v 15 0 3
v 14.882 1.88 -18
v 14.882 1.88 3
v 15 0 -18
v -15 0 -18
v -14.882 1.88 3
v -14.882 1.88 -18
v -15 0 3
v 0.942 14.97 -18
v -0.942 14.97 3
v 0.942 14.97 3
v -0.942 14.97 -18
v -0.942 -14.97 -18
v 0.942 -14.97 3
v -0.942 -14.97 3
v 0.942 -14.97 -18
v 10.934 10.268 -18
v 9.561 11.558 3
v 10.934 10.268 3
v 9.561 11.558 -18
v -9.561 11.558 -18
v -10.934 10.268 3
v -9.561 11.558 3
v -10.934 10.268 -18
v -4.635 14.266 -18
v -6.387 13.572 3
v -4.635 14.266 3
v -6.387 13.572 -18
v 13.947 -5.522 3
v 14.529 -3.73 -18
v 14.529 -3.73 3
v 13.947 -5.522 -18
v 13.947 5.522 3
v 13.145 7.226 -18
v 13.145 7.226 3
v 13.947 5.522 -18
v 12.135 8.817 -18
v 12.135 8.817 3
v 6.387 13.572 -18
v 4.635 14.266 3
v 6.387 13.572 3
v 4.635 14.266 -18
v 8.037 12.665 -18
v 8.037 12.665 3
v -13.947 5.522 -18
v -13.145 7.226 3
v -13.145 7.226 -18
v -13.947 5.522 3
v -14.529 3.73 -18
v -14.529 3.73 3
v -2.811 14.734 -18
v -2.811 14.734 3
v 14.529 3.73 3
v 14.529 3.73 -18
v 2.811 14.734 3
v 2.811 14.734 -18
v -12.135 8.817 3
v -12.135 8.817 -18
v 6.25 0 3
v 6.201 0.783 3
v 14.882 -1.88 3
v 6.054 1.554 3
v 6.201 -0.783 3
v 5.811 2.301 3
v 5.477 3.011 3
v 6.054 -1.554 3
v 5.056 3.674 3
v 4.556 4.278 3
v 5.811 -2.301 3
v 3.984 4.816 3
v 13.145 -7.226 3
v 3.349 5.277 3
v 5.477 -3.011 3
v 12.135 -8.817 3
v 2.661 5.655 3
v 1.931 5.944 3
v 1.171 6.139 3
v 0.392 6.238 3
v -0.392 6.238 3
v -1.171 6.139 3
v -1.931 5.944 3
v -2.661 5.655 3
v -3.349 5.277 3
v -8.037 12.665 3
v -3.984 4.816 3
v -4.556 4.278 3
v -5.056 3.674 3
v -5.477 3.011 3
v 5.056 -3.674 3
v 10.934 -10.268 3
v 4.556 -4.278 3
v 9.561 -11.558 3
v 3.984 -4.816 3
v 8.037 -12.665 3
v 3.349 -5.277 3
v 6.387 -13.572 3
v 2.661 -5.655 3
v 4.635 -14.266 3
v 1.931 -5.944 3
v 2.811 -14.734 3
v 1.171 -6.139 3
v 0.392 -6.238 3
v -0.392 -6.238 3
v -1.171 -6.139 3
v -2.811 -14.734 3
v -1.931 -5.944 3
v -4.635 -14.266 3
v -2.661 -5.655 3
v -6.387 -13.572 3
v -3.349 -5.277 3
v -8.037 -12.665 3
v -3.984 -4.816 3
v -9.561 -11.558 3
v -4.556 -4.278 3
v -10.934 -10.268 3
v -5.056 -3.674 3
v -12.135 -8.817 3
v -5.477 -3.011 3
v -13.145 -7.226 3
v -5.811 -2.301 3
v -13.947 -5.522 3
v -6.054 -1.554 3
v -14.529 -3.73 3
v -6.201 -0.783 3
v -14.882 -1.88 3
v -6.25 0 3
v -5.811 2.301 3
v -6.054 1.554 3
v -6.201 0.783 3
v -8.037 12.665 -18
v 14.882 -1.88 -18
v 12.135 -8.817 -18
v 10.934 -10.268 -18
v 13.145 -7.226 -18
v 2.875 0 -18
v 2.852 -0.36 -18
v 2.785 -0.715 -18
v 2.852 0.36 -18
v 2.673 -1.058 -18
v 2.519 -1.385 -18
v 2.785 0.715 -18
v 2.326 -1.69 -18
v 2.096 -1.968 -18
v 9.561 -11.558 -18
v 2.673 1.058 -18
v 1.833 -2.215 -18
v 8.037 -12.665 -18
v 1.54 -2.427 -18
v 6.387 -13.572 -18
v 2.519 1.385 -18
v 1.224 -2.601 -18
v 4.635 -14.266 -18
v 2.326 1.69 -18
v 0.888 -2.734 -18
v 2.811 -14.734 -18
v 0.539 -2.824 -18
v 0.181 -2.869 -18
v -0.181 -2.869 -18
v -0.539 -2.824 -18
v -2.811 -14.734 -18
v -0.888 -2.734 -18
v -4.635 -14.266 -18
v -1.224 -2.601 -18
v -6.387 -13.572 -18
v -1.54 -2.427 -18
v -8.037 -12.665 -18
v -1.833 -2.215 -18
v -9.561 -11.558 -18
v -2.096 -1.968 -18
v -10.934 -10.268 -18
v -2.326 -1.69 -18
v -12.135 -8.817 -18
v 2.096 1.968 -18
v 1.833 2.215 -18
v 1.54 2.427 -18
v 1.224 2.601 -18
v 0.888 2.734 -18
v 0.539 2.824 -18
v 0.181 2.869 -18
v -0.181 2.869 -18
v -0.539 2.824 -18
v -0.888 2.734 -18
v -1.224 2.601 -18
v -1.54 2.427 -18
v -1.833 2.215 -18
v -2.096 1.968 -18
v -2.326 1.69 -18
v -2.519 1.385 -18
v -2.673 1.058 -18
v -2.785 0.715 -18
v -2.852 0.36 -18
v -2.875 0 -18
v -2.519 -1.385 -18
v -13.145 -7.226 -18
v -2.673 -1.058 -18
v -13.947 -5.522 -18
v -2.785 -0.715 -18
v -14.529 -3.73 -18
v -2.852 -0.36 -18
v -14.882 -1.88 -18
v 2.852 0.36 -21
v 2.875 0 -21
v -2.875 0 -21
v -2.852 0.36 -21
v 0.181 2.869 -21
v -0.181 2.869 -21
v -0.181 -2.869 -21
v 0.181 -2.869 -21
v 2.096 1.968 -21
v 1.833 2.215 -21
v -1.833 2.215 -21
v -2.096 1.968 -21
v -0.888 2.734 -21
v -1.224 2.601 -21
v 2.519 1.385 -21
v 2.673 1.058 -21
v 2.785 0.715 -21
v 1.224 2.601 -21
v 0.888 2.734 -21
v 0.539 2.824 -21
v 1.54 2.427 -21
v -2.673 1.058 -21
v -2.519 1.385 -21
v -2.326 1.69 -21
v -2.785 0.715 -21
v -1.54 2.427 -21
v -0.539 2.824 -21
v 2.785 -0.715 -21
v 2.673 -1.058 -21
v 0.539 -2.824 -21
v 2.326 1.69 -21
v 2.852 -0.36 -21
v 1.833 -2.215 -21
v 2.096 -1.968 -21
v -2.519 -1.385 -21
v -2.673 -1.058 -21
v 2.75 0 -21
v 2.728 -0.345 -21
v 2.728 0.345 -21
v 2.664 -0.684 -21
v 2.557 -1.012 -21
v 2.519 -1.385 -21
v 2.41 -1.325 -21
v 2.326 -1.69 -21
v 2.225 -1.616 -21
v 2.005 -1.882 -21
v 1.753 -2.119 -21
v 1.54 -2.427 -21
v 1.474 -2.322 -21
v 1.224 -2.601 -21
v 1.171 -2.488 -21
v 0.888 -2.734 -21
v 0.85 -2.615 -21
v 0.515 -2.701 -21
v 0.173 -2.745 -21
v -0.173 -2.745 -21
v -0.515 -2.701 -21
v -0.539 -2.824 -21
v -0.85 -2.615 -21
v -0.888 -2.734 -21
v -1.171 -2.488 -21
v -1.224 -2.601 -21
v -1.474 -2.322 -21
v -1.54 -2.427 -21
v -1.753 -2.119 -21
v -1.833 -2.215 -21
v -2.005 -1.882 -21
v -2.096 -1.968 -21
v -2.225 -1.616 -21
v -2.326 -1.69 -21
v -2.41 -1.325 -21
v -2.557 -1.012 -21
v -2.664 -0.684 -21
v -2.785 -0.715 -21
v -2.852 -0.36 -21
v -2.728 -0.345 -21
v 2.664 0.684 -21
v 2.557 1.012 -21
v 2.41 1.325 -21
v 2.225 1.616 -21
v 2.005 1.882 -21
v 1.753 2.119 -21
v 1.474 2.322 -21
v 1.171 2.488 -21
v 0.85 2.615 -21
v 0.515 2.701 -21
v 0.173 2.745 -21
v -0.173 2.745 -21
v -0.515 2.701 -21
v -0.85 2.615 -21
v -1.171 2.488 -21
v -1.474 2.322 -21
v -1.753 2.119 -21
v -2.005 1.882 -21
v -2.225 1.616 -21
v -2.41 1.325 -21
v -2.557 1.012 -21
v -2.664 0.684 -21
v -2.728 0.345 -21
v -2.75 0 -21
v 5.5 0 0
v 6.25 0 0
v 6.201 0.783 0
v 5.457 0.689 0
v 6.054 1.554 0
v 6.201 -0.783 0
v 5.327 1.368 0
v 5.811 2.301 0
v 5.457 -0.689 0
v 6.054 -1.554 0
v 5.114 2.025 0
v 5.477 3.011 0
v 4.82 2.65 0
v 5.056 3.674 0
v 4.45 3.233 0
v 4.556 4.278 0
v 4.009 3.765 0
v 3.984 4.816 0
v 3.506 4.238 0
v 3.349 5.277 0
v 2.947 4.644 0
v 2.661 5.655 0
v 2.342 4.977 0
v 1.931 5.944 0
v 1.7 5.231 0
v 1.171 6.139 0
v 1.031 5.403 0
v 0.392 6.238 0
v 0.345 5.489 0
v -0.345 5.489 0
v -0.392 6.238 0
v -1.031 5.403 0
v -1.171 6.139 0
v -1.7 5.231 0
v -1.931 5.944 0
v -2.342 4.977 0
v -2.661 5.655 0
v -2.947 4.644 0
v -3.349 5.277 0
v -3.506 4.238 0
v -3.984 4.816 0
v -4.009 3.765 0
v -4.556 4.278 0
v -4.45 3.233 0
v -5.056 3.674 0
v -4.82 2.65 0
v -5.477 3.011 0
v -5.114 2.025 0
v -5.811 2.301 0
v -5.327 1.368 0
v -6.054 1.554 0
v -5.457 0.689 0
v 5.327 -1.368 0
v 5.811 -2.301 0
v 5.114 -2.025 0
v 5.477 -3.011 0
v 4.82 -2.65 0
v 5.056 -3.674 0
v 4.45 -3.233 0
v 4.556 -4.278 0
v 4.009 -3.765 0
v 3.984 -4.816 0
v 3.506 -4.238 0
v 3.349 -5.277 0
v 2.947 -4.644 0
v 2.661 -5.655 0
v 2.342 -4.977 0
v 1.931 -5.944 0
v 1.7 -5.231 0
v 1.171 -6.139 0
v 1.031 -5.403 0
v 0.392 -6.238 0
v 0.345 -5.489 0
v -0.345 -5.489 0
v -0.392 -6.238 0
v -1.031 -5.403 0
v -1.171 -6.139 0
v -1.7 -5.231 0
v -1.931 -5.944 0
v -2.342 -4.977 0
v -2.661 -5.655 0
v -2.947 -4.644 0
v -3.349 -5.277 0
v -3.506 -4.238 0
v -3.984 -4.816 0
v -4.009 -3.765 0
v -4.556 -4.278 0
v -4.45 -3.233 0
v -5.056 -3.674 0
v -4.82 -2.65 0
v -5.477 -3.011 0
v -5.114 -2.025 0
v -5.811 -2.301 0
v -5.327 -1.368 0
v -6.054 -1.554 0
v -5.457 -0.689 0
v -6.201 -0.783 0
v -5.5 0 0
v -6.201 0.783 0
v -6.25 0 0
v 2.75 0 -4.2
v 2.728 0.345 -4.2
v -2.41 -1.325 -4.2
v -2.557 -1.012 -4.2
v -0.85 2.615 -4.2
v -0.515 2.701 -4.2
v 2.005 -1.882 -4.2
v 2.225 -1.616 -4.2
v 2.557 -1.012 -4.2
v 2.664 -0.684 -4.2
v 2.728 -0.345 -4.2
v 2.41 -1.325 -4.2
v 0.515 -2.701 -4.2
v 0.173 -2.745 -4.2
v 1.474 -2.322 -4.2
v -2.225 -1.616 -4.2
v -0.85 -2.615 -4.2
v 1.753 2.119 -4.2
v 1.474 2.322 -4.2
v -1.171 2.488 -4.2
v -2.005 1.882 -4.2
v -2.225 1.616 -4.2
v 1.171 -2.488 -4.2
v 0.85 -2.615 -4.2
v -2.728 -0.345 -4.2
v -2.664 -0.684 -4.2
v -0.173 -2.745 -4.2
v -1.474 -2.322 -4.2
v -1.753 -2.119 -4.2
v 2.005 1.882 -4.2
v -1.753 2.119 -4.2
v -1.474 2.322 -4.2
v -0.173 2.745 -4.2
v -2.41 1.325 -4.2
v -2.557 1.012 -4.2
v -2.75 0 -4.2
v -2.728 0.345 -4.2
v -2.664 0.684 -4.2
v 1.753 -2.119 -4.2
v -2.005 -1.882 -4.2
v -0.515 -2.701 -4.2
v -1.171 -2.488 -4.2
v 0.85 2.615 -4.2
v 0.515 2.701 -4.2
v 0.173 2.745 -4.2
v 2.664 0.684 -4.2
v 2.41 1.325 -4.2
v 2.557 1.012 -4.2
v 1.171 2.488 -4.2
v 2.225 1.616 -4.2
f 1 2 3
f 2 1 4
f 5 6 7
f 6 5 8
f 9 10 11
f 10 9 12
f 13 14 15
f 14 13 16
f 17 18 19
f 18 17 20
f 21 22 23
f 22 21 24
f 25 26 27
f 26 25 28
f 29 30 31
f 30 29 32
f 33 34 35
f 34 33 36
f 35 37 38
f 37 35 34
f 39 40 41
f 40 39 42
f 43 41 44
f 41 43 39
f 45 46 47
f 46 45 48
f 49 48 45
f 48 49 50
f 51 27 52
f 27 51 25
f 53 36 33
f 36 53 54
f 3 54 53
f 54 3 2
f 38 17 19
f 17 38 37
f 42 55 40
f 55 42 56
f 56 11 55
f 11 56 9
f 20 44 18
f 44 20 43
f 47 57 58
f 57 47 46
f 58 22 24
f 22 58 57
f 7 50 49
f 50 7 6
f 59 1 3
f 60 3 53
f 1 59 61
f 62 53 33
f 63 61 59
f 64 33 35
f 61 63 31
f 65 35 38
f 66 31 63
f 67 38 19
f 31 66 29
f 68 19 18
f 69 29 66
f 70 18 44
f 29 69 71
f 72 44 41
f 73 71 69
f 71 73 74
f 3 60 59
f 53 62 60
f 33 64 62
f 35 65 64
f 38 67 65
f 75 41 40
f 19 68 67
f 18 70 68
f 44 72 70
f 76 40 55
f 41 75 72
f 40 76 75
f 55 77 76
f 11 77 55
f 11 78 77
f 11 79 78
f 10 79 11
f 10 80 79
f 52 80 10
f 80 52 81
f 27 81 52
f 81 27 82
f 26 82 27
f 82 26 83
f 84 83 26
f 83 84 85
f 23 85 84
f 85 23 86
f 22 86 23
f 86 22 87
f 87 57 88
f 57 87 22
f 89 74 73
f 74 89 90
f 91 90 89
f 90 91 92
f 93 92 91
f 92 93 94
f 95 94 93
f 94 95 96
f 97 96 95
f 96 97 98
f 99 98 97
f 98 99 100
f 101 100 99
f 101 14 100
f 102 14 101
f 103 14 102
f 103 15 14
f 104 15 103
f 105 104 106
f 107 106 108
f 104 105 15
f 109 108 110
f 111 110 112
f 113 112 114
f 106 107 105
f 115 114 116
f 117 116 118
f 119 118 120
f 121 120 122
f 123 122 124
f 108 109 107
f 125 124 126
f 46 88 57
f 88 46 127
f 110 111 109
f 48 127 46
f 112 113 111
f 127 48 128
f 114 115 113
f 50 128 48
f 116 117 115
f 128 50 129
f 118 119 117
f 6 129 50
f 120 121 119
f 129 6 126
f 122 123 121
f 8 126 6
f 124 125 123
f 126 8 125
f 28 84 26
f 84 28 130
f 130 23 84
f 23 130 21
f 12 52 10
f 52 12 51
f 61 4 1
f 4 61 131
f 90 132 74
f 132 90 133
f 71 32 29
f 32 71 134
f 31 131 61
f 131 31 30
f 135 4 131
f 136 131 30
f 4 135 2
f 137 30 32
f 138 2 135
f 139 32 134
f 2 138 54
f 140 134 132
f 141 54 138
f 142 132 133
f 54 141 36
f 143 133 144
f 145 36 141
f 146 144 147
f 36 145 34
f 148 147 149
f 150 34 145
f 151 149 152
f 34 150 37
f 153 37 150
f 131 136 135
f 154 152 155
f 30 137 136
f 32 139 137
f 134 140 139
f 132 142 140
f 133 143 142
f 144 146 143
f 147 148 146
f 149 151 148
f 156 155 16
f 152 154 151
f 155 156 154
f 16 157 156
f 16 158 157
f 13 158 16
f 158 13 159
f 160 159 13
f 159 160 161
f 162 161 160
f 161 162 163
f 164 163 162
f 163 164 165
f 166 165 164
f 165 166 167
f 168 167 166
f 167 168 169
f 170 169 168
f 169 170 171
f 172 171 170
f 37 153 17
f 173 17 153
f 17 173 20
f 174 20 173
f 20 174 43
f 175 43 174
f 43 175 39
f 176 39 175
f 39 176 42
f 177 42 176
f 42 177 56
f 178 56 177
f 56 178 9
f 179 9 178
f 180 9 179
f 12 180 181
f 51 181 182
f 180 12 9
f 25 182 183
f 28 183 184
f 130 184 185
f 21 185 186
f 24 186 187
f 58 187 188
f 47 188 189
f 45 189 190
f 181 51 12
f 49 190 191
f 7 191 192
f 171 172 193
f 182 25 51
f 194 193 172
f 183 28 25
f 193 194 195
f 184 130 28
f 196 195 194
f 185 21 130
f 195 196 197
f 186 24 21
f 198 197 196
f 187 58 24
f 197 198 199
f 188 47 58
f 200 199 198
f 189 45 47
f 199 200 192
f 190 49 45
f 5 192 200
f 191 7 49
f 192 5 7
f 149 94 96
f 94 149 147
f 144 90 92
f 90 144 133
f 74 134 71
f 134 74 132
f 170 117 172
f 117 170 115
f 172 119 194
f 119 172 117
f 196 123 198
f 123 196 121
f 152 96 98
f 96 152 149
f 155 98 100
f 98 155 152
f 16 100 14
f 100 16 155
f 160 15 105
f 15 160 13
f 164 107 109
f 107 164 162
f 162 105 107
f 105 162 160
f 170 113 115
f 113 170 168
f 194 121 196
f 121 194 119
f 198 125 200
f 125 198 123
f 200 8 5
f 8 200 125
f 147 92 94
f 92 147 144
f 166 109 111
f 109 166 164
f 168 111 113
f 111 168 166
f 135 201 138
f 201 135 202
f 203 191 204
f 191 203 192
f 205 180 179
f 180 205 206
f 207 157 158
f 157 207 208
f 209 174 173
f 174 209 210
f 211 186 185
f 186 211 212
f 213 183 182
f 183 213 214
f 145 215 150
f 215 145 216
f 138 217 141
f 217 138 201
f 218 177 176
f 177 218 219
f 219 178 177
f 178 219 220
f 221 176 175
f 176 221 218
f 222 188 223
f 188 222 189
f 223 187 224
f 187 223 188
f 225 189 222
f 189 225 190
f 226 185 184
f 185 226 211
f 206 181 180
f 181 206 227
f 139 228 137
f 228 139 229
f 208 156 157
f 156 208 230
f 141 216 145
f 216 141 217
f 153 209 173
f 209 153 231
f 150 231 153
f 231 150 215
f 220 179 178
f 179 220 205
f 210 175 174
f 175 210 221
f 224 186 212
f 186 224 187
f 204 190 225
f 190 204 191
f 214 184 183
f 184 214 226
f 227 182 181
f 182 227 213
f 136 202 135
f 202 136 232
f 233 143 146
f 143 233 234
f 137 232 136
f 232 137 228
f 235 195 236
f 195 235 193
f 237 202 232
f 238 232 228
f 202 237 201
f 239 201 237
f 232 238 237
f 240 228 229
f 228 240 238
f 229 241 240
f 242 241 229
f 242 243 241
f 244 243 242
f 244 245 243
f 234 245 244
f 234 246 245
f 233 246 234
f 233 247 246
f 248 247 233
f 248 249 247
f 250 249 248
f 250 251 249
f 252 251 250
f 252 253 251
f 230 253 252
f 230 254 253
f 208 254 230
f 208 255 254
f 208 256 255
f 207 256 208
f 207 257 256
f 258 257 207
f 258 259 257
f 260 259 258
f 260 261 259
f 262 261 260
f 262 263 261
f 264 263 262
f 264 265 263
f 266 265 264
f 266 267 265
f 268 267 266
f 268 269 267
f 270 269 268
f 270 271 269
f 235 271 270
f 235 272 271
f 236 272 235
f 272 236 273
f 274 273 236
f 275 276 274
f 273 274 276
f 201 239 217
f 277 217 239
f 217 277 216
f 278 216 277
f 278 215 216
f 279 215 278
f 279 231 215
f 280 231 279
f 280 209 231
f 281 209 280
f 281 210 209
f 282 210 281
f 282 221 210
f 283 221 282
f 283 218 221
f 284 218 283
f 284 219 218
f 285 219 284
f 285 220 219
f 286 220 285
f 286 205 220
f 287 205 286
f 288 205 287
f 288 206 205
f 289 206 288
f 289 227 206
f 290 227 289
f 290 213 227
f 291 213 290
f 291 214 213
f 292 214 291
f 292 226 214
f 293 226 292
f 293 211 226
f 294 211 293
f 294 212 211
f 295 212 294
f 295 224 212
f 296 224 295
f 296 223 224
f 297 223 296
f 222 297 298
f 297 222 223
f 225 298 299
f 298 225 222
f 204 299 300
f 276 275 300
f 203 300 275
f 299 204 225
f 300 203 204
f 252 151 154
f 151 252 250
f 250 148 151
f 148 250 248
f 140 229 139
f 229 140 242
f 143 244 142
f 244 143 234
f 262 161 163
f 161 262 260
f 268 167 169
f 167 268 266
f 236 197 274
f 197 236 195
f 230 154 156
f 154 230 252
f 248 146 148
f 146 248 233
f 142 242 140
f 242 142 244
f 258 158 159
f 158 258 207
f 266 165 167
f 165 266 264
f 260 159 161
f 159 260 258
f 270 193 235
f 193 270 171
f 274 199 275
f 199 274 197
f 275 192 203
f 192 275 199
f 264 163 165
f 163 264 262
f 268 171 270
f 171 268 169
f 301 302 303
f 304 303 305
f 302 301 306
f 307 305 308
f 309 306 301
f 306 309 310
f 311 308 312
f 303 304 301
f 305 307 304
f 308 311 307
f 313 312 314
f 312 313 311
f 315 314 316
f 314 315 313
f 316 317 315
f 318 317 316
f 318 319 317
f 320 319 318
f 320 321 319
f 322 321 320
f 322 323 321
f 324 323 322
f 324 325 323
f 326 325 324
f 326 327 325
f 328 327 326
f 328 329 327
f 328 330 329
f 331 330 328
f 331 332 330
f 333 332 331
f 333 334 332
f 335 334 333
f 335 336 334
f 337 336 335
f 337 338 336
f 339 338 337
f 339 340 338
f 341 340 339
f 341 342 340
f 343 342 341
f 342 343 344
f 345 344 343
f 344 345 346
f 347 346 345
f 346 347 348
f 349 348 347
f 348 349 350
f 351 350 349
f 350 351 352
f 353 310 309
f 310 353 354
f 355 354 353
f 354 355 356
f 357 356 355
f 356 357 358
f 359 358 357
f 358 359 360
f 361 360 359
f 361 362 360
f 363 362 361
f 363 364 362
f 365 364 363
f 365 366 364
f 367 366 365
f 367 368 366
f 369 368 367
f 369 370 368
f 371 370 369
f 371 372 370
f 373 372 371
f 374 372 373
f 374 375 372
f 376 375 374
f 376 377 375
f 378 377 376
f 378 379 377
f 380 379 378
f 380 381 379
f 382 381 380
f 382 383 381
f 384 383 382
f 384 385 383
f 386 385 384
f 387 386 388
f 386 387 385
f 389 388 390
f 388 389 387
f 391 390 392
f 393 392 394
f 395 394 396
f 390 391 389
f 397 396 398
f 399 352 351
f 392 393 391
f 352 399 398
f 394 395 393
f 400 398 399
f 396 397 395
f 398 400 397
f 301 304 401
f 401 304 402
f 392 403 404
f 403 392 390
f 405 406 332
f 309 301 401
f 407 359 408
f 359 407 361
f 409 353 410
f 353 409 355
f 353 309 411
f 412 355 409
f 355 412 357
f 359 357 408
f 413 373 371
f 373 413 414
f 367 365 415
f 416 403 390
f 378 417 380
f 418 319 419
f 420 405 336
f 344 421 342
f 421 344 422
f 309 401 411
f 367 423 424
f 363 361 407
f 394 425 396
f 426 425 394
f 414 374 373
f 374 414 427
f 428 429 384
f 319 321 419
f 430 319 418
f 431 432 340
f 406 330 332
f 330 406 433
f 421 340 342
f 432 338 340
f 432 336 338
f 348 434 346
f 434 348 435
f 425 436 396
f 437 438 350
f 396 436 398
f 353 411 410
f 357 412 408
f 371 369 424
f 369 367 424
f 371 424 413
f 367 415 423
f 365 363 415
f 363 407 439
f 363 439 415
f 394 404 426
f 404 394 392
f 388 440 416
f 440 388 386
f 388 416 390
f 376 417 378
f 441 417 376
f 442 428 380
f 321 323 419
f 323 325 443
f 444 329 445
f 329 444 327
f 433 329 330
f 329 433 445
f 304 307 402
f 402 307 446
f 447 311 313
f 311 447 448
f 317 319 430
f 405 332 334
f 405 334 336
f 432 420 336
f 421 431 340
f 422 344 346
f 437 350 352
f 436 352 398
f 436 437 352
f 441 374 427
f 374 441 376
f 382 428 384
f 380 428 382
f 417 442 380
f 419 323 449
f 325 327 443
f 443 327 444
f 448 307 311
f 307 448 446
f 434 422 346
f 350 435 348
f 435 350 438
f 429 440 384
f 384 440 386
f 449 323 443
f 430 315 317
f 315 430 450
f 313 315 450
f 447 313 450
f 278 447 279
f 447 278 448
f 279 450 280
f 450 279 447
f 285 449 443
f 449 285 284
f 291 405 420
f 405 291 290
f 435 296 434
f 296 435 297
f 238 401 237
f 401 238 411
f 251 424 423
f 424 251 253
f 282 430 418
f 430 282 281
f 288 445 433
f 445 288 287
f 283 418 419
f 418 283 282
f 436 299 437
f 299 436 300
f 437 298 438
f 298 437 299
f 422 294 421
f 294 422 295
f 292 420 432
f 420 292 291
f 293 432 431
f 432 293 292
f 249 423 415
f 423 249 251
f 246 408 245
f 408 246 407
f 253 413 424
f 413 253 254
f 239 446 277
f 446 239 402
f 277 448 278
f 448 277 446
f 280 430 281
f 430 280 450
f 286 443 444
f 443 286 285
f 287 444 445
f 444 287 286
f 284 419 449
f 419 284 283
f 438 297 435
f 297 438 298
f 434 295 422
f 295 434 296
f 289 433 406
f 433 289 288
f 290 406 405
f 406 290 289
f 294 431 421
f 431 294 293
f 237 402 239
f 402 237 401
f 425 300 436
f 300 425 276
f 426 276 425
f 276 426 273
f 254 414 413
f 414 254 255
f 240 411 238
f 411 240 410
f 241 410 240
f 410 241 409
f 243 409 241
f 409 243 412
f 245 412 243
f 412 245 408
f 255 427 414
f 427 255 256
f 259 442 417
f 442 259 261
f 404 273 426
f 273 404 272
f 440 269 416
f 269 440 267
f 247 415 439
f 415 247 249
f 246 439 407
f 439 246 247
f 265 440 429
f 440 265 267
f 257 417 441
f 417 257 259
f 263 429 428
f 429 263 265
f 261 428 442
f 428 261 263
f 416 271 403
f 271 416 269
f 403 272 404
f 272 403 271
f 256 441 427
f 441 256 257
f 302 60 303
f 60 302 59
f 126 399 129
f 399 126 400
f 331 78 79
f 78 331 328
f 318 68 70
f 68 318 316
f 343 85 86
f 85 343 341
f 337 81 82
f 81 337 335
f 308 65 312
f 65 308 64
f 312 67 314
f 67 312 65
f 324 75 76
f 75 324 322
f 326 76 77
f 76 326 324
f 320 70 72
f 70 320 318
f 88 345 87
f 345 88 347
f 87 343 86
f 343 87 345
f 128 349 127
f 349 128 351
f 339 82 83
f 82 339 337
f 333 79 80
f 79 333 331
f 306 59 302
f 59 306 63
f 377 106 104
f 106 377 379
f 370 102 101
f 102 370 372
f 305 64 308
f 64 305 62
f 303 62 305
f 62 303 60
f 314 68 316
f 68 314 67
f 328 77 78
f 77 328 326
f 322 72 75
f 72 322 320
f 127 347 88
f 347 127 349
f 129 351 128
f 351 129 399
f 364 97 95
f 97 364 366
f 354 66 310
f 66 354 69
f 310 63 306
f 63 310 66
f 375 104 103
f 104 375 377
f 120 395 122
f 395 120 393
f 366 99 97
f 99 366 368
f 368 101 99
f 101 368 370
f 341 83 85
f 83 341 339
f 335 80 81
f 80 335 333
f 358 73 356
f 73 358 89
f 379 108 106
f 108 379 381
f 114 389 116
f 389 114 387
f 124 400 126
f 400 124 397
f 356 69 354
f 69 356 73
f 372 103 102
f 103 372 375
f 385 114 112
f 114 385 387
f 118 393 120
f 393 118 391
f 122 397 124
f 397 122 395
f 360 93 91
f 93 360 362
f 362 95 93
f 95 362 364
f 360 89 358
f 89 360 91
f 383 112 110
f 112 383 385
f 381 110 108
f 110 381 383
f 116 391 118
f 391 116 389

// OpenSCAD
$fn = 50;


difference() {
	union() {
		translate(v = [0, 0, -18.0000000000]) {
			cylinder(h = 21, r = 15.0000000000);
		}
		#translate(v = [0, 0, -21.0000000000]) {
			cylinder(h = 21, r = 2.8750000000);
		}
	}
	union() {
		translate(v = [0, 0, 0]) {
			rotate(a = [0, 0, 0]) {
				difference() {
					union() {
						translate(v = [0, 0, -21.0000000000]) {
							cylinder(h = 21, r = 2.2500000000);
						}
						translate(v = [0, 0, -4.2000000000]) {
							cylinder(h = 4.2000000000, r1 = 2.7500000000, r2 = 5.5000000000);
						}
						translate(v = [0, 0, -21.0000000000]) {
							cylinder(h = 21, r = 2.7500000000);
						}
						translate(v = [0, 0, -21.0000000000]) {
							cylinder(h = 21, r = 2.2500000000);
						}
					}
					union();
				}
			}
		}
		#cylinder(h = 3, r = 6.2500000000);
	}
}
